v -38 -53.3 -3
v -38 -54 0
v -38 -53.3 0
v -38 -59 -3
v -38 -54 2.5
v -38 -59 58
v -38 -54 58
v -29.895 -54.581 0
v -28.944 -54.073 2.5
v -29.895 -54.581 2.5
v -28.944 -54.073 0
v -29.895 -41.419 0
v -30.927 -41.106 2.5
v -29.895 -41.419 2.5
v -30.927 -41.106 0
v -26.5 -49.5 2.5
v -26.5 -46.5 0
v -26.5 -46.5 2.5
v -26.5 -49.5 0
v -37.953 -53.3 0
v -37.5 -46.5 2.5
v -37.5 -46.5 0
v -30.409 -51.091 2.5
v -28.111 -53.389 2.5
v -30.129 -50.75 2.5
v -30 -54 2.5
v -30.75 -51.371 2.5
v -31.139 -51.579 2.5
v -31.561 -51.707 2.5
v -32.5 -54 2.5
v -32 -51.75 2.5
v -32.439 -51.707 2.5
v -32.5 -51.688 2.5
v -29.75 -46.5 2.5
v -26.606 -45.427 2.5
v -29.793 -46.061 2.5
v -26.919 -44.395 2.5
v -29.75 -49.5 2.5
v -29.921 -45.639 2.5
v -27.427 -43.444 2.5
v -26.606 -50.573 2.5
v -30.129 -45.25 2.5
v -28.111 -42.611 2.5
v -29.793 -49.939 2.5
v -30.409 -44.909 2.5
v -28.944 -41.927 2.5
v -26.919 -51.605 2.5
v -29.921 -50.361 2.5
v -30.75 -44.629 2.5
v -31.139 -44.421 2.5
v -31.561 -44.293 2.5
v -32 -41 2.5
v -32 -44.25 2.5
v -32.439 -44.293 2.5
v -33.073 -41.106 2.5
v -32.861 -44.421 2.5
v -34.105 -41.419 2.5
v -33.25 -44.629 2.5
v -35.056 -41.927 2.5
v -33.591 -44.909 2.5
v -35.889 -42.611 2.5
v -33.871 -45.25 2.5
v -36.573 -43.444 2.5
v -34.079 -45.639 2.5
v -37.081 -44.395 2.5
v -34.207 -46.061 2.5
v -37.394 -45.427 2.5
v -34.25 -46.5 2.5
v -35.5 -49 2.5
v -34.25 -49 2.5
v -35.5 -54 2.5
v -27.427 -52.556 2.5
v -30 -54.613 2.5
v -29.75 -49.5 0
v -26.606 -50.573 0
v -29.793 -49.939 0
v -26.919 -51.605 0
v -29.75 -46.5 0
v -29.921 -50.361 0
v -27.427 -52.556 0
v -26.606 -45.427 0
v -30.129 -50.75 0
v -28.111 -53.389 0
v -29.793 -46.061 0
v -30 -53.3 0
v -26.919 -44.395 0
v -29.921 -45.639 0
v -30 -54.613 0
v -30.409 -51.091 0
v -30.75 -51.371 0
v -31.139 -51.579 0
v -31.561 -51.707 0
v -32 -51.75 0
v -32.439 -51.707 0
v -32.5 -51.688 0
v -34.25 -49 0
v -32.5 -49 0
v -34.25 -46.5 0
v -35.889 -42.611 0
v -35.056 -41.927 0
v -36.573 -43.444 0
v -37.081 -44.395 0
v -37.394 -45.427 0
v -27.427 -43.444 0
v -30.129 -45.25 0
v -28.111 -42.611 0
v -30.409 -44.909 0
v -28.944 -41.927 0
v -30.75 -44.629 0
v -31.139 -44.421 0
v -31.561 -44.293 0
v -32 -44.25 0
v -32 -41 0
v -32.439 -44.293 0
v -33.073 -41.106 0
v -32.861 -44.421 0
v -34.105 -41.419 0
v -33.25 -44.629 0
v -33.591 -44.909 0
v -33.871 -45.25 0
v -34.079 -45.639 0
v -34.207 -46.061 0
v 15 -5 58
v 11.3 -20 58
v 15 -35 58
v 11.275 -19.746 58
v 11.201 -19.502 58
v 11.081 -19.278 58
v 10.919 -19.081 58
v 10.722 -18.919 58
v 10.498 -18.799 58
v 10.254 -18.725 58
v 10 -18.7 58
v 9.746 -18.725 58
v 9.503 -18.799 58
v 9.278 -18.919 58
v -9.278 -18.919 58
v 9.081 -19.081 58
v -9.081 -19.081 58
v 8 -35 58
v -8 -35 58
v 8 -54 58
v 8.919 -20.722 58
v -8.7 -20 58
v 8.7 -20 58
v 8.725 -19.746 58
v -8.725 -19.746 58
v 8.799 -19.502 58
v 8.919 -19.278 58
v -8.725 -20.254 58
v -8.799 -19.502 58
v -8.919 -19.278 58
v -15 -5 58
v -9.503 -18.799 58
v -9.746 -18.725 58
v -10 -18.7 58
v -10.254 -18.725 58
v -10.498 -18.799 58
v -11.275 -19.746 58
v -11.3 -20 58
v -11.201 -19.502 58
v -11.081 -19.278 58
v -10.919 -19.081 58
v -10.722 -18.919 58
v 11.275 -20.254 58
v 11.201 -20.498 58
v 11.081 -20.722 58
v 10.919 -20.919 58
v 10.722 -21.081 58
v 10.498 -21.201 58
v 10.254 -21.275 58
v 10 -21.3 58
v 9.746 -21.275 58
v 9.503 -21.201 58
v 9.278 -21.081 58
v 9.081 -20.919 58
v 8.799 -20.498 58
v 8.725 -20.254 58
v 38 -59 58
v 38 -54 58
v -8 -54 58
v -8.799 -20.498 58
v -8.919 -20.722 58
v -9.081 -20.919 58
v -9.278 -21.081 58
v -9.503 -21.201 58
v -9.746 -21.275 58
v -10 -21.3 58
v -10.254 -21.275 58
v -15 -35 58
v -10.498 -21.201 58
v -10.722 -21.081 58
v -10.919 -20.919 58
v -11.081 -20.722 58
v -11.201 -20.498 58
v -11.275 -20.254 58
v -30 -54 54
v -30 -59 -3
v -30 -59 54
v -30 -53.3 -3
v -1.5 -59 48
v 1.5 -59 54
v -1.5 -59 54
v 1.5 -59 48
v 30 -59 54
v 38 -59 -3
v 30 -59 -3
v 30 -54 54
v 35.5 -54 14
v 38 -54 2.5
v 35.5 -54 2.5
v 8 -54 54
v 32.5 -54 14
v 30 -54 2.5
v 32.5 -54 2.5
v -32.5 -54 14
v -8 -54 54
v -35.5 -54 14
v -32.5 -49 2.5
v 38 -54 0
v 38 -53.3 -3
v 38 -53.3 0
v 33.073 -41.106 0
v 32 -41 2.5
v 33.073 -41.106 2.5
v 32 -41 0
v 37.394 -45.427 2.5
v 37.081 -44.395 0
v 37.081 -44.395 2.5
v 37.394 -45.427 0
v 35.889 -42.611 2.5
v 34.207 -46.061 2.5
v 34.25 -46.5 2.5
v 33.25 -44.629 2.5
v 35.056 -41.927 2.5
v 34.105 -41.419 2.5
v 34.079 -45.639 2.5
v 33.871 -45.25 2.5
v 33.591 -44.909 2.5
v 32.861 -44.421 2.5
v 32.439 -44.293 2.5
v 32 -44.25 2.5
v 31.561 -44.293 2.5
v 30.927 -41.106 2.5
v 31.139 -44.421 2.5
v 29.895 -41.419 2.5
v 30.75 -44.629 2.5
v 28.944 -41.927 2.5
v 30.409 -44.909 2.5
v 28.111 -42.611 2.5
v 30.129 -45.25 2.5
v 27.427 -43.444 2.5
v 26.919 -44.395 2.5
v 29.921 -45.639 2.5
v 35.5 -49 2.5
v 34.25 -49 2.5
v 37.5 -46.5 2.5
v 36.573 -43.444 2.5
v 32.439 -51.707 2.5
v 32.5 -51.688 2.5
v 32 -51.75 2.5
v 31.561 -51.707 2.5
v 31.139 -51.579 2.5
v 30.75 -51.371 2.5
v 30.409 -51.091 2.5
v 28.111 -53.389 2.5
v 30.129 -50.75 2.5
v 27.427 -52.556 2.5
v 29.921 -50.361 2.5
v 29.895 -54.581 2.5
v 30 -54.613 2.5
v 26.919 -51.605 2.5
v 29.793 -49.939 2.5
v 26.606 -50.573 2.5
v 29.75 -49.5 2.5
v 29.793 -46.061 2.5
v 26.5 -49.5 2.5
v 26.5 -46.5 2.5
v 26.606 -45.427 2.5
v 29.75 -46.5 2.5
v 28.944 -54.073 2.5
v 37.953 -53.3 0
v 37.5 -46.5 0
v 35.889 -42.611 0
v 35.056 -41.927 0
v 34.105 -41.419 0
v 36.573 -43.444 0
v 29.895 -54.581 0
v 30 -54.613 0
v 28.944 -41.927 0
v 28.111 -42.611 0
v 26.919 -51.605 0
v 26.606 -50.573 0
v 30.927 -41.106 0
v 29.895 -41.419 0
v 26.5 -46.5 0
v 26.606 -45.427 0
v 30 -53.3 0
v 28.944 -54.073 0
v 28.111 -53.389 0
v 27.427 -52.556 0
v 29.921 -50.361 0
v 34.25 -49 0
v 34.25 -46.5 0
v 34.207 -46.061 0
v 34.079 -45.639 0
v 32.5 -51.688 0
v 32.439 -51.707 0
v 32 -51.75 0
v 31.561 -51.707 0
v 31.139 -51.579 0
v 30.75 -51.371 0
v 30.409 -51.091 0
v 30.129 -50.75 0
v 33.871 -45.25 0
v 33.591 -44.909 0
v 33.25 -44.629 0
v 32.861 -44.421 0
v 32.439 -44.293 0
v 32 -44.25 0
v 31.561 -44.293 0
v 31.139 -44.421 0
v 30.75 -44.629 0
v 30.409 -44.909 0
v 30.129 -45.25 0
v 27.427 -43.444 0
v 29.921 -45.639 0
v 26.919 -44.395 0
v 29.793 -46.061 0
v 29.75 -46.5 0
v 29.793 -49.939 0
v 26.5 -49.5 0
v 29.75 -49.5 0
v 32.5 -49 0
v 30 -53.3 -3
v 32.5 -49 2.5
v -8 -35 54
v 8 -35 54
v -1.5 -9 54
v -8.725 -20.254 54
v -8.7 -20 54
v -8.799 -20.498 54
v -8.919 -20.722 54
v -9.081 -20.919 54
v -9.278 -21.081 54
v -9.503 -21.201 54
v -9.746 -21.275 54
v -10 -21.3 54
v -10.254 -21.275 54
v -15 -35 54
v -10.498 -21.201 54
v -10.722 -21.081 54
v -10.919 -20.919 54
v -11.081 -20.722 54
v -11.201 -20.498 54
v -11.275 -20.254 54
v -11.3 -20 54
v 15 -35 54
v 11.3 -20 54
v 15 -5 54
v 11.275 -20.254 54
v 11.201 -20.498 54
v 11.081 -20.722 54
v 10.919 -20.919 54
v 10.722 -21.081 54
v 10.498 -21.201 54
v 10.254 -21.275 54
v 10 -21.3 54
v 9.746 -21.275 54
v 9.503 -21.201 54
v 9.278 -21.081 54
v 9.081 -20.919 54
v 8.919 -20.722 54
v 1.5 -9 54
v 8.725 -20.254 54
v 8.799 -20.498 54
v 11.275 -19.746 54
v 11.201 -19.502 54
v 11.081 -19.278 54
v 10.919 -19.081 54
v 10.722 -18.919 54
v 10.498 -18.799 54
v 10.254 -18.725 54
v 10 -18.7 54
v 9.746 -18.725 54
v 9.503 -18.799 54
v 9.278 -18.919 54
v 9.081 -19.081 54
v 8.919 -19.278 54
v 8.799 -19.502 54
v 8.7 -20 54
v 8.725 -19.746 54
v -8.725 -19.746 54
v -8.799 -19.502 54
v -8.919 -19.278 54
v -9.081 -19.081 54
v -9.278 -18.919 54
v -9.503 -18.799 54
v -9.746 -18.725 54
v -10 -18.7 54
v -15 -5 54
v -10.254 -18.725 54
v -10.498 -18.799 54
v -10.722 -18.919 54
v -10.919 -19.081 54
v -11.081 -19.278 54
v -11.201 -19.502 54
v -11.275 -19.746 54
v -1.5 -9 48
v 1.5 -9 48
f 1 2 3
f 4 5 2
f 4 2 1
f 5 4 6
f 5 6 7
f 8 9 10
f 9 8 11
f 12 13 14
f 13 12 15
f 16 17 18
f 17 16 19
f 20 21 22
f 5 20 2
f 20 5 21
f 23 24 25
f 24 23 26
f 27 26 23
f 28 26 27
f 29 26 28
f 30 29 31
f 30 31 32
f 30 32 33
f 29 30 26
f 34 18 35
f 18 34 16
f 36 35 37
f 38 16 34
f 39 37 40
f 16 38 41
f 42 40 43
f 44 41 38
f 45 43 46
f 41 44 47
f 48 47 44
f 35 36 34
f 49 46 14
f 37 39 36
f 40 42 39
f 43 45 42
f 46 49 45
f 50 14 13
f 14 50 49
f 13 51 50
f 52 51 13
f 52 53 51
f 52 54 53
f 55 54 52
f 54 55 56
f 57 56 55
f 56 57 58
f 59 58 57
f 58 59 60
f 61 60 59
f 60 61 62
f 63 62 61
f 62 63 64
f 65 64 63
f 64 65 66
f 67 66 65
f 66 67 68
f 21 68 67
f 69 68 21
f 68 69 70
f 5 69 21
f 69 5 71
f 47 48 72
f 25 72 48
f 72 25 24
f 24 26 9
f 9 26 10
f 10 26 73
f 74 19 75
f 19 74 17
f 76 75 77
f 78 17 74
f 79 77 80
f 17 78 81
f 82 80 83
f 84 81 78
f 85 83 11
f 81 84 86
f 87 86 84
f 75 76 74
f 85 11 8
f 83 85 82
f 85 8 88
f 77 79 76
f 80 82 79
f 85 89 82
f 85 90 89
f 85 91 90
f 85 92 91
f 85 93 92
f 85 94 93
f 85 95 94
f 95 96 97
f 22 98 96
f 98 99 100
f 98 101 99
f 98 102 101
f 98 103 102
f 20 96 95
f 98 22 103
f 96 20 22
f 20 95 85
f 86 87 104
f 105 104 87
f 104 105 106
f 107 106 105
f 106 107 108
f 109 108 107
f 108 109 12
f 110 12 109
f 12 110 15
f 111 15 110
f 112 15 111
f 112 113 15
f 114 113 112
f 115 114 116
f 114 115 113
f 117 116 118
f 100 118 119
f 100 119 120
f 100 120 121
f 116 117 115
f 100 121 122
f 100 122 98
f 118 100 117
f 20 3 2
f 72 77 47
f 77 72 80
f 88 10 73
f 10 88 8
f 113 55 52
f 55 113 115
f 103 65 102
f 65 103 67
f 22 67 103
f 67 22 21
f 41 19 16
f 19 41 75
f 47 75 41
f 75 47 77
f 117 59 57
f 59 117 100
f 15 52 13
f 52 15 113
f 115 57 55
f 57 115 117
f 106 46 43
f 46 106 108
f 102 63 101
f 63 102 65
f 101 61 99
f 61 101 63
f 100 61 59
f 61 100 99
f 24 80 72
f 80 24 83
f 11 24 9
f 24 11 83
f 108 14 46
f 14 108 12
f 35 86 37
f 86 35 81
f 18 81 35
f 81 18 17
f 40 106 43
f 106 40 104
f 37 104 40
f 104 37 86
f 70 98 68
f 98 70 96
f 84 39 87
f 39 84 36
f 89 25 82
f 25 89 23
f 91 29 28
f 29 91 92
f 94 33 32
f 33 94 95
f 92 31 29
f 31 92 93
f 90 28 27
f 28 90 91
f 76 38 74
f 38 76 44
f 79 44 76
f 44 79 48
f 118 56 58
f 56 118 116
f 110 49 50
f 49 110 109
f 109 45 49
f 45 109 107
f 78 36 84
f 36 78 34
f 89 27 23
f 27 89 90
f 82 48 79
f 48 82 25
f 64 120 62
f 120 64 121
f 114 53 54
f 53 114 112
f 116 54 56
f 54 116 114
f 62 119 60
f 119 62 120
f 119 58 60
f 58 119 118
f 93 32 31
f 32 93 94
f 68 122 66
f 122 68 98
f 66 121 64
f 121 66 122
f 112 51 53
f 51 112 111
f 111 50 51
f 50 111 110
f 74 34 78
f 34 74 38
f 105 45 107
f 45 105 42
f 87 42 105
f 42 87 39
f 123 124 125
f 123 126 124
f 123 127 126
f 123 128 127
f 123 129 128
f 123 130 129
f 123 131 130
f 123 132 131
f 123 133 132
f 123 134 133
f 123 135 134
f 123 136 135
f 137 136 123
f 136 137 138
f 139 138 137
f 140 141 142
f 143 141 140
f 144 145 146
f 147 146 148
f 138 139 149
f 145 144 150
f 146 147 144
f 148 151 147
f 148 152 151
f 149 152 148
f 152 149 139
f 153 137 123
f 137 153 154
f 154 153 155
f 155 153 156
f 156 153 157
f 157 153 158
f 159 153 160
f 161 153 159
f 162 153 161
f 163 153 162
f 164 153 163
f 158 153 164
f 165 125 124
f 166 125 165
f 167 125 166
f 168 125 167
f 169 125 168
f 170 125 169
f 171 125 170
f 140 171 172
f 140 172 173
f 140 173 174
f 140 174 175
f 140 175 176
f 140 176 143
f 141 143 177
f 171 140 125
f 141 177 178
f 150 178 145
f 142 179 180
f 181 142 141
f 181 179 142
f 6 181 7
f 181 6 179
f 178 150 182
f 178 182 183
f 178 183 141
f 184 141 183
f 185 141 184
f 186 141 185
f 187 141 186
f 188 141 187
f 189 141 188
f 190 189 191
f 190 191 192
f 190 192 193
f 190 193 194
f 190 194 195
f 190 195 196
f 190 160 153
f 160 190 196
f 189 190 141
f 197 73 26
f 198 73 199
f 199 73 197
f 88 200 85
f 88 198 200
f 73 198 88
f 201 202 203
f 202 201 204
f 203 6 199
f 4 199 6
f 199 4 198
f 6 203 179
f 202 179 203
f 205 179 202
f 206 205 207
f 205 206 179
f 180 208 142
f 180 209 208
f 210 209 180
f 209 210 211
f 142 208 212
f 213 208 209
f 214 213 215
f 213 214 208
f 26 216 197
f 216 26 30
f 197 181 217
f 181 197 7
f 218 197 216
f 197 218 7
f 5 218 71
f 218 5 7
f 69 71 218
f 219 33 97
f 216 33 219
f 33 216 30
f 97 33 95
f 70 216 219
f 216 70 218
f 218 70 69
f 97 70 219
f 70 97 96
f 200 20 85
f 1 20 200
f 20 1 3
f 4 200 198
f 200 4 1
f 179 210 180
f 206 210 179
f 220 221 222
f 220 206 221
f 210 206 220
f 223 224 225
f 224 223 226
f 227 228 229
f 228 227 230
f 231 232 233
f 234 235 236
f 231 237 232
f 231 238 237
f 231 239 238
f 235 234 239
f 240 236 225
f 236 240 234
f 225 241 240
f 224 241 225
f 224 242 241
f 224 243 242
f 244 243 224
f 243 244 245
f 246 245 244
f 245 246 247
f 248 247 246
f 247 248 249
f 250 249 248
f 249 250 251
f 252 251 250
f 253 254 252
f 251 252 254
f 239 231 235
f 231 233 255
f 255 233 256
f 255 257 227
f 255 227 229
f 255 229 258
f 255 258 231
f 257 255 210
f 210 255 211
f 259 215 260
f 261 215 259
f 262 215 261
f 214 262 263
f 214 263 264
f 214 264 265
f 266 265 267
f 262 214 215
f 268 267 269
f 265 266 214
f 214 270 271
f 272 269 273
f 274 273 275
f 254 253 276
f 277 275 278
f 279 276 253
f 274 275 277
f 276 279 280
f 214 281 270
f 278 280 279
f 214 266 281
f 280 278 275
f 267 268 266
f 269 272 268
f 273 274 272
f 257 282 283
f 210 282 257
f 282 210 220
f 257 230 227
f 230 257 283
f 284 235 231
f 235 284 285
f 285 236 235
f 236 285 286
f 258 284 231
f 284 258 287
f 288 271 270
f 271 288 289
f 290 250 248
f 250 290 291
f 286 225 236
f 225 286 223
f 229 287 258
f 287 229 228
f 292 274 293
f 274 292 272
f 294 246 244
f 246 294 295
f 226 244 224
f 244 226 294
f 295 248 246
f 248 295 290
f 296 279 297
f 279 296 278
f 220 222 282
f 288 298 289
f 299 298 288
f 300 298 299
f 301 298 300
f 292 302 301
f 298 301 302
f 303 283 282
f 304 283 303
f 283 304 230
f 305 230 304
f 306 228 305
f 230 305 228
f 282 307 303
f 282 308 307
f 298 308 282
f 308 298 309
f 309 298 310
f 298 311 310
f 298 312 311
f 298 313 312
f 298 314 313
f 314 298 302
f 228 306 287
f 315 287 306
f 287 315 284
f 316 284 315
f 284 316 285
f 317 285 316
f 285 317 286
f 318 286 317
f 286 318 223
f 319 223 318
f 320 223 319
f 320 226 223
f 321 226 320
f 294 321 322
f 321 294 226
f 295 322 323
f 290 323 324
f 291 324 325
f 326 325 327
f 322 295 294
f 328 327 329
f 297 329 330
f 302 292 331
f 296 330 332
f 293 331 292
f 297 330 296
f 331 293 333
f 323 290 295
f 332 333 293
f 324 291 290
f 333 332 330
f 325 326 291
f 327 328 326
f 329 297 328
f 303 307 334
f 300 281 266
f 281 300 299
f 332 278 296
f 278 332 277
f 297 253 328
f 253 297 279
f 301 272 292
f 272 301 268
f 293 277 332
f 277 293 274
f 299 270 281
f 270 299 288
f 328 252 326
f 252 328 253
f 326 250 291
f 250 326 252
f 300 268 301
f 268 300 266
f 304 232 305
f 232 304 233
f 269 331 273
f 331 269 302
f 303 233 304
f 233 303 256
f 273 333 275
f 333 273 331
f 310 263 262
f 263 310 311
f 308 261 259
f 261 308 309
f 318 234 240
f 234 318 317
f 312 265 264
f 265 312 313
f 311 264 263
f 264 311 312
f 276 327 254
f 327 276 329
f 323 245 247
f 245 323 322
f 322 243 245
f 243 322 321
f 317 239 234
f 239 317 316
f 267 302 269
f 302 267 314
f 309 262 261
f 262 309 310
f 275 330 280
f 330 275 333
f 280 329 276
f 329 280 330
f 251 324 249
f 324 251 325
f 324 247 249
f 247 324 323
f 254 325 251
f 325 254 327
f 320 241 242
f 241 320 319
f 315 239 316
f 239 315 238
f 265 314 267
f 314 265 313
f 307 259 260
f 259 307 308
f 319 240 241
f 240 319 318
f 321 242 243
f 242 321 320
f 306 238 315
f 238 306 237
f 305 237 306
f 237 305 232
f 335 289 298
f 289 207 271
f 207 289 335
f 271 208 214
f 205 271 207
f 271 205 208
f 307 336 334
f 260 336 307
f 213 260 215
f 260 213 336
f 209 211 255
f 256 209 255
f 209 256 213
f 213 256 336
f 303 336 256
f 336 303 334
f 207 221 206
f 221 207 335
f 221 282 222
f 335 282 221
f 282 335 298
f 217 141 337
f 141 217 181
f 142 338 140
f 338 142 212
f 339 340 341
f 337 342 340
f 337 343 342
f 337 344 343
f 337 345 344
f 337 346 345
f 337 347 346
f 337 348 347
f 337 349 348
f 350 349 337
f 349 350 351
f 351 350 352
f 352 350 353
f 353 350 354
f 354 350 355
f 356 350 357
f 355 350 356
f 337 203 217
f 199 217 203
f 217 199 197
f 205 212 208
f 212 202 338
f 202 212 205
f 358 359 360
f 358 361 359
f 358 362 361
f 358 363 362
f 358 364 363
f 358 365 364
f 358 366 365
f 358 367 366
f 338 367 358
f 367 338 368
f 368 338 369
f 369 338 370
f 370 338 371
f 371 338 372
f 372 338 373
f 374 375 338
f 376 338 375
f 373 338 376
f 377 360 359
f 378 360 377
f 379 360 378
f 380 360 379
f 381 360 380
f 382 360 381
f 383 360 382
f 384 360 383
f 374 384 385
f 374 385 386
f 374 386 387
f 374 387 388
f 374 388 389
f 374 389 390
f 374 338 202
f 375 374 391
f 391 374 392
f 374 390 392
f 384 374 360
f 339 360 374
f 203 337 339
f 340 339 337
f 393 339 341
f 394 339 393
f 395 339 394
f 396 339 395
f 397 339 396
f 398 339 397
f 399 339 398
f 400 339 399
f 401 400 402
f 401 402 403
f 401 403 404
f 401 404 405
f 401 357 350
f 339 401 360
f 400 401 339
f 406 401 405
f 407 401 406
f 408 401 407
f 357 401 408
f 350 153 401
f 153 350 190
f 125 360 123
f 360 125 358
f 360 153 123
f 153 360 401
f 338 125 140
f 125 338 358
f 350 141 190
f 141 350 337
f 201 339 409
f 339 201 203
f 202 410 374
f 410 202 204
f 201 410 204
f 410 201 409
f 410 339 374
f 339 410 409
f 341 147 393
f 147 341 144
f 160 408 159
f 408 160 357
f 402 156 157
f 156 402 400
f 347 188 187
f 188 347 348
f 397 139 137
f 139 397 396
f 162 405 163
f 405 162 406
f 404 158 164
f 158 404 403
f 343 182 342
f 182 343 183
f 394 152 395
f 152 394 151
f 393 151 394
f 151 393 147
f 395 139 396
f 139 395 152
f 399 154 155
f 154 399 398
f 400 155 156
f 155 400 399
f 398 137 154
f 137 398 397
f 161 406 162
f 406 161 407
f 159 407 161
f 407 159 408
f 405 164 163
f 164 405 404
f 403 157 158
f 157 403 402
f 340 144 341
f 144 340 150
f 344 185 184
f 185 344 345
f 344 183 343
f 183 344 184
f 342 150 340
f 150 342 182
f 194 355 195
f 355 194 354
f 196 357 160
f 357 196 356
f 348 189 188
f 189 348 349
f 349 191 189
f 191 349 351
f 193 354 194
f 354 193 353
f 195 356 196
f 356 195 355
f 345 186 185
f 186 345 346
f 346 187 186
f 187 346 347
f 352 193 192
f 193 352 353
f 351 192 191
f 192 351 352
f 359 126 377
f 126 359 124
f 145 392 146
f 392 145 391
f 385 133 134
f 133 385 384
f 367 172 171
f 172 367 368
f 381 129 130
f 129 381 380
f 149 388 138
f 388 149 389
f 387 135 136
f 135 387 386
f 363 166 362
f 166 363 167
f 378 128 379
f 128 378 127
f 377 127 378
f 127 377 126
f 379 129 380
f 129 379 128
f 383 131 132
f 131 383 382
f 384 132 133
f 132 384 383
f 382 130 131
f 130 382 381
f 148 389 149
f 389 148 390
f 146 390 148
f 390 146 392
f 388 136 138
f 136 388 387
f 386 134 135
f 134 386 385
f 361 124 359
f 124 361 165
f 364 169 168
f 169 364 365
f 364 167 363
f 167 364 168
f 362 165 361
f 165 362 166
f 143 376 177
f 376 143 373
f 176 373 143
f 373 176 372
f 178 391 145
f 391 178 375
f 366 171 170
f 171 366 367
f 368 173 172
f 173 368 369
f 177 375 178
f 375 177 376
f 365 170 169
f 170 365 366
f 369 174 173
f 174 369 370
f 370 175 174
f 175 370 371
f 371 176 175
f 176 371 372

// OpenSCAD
// Marker bracket (2026-11-01, Enoch's design): a C-shaped bracket (side view)
// that carries marker cap v1 (marker-cap.scad, ArUco id 2) above the spine
// deck now that battery cradle v3 - which the cap clipped onto - is gone.
//
//   - Feet: two bolt loops on the REAR post bolts (+/-32, -48), thin enough
//     that the rear-left one slides under the FNK0101's edge (the board
//     stands on 5 mm standoffs) with the button head on top.
//   - Spine: two legs just behind the loops, outboard of the posts, joined
//     at the top - the FNK0101's barrel-jack plug (sticking out rearward at
//     x ~ -19) passes between them.
//   - Top arm: a cross beam on the legs and a tongue forward to a 30 mm pad;
//     marker cap v1's plate rests on the pad and is screwed down (two M3
//     self-tappers into pilots here, through holes Enoch drills in the cap).
//     The pad sits high enough that the cap's 13 mm skirts clear the wiring
//     (pressed to 45 mm) - 13 mm lower if the skirts are trimmed off.
//
// Frame: +y FORWARD, +x Grover's RIGHT, z up from the top plate's top face
// (right-handed; checked per CLAUDE.md's handedness rule). Origin: centre of
// the deck posts (top-plate.scad).
//
// CONFIRM with Enoch before slicing: loop thickness vs the gap under the
// FNK0101 at the rear-left bolt; thread left in the posts with the loops
// under the bolt heads; the space behind the plate's rear edge; arm height.
//
// Render: openscad -o marker-bracket.stl marker-bracket.scad
// Print:  on its back (the legs' rear faces down), no supports, no brim.
//         Blue PETG (Grover parts).

post_x = 32;  post_y = -48;     // rear posts (top-plate.scad)
plate_rear = -53;               // top plate's rear edge
m4_hole = 4.5;  slot = 1.5;     // fore-aft slot as in the top plate
lip_d   = 3;                    // the top plate is 3.5 thick
lip_gap = 0.3;                  // lip front face behind the plate's rear edge

loop_t  = 2.5;                  // under the FNK0101: 5 mm gap - head (~2.2) leaves ~0.3
loop_d  = 11;
leg_w   = 8;                    // across (x)
leg_t   = 5;                    // fore-aft
leg_x   = post_x + 2;           // leg centre, just outboard of the post
leg_y1  = post_y - loop_d / 2 - 0.5;   // leg front face, behind the bolt head
leg_y0  = leg_y1 - leg_t;

skirts  = true;                 // cap v1 keeps its 13 mm skirts (false if Enoch trims them off)
wire_z  = 45;                   // tallest wiring, pressed down (Enoch)
skirt_h = 13 + 2.4;             // cap v1: skirt bottoms this far below its top face
arm_t   = 4;
pad_top = skirts ? wire_z + skirt_h - 2.4 : wire_z + 3;   // the cap's plate rests here
clear_z = pad_top - arm_t;      // cross beam / tongue underside
pad     = 30;                   // square screw pad (the cap is light - Enoch)
pad_y   = -20;                  // pad (and marker) centre: cap v1's skirts (y +/-28 about it)
                                // then clear the legs and cross beam behind
tongue_w = 16;
screw_dx = 20;                  // two M3 self-tappers, across; Enoch drills the cap to match
m3_pilot = 2.6;
top_z   = pad_top;

$fn = 32;

module loop(sx) {
  difference() {
    hull() {
      translate([sx * leg_x - leg_w / 2, leg_y1 - 0.01, 0]) cube([leg_w, 0.01, loop_t]);
      hull() for (dy = [-slot, slot]) translate([sx * post_x, post_y + dy, 0]) cylinder(d = loop_d, h = loop_t);
    }
    hull() for (dy = [-slot, slot]) translate([sx * post_x, post_y + dy, -1]) cylinder(d = m4_hole, h = loop_t + 2);
  }
}

module leg(sx) {
  translate([sx * leg_x - leg_w / 2, leg_y0, 0]) cube([leg_w, leg_t, clear_z + arm_t]);
  // gusset: leg into loop
  hull() {
    translate([sx * leg_x - 1.5, leg_y1 - 0.01, 0]) cube([3, 0.01, 14]);
    translate([sx * leg_x - 1.5, leg_y1, 0]) cube([3, 5, loop_t]);
  }
  // lip (Enoch, 11-01): drops over the top plate's rear edge, front face just
  // behind it, so the bracket can't rock about the two bolts. Runs back flush
  // with the leg's rear face - it prints on that face, no overhang.
  translate([sx * leg_x - leg_w / 2, leg_y0, -lip_d]) cube([leg_w, plate_rear - lip_gap - leg_y0, lip_d]);
}

module arm() {
  // cross beam over the legs, a tongue forward along the centreline, the pad
  translate([-(leg_x + leg_w / 2), leg_y0, clear_z]) cube([2 * (leg_x + leg_w / 2), leg_t, arm_t]);
  difference() {
    union() {
      translate([-tongue_w / 2, leg_y0, clear_z]) cube([tongue_w, pad_y - leg_y0, arm_t]);
      translate([-pad / 2, pad_y - pad / 2, clear_z]) cube([pad, pad, arm_t]);
      // stiffening rib under the tongue
      translate([-1.5, leg_y0, clear_z - 6]) cube([3, pad_y + pad / 2 - leg_y0 - 4, 6]);
    }
    for (sx = [-1, 1]) translate([sx * screw_dx / 2, pad_y, clear_z - 7]) cylinder(d = m3_pilot, h = arm_t + 8);
  }
}

module bracket() {
  for (sx = [-1, 1]) { loop(sx); leg(sx); }
  arm();
}

bracket();
// ghosts: FNK0101 rear edge region, posts, cap v1 plate
%translate([-75.1, -46.1, 5]) cube([87.6, 10, 21.6]);
%for (sx = [-1, 1]) translate([sx * post_x, post_y, -30]) cylinder(d = 8, h = 30);
%translate([-39, pad_y - 39, top_z]) cube([78, 78, 2.4]);
%for (sx = [-1, 1]) translate([sx * 34.3 - 0.8, pad_y - 28, top_z - 13]) cube([1.6, 56, 13]);   // cap v1 skirts

echo(str("marker bracket: pad top ", pad_top, " mm above the plate, skirt bottoms at ", pad_top + 2.4 - skirt_h,
         "; marker centre y = ", pad_y, " (", pad_y - post_y, " ahead of the rear posts)"));
